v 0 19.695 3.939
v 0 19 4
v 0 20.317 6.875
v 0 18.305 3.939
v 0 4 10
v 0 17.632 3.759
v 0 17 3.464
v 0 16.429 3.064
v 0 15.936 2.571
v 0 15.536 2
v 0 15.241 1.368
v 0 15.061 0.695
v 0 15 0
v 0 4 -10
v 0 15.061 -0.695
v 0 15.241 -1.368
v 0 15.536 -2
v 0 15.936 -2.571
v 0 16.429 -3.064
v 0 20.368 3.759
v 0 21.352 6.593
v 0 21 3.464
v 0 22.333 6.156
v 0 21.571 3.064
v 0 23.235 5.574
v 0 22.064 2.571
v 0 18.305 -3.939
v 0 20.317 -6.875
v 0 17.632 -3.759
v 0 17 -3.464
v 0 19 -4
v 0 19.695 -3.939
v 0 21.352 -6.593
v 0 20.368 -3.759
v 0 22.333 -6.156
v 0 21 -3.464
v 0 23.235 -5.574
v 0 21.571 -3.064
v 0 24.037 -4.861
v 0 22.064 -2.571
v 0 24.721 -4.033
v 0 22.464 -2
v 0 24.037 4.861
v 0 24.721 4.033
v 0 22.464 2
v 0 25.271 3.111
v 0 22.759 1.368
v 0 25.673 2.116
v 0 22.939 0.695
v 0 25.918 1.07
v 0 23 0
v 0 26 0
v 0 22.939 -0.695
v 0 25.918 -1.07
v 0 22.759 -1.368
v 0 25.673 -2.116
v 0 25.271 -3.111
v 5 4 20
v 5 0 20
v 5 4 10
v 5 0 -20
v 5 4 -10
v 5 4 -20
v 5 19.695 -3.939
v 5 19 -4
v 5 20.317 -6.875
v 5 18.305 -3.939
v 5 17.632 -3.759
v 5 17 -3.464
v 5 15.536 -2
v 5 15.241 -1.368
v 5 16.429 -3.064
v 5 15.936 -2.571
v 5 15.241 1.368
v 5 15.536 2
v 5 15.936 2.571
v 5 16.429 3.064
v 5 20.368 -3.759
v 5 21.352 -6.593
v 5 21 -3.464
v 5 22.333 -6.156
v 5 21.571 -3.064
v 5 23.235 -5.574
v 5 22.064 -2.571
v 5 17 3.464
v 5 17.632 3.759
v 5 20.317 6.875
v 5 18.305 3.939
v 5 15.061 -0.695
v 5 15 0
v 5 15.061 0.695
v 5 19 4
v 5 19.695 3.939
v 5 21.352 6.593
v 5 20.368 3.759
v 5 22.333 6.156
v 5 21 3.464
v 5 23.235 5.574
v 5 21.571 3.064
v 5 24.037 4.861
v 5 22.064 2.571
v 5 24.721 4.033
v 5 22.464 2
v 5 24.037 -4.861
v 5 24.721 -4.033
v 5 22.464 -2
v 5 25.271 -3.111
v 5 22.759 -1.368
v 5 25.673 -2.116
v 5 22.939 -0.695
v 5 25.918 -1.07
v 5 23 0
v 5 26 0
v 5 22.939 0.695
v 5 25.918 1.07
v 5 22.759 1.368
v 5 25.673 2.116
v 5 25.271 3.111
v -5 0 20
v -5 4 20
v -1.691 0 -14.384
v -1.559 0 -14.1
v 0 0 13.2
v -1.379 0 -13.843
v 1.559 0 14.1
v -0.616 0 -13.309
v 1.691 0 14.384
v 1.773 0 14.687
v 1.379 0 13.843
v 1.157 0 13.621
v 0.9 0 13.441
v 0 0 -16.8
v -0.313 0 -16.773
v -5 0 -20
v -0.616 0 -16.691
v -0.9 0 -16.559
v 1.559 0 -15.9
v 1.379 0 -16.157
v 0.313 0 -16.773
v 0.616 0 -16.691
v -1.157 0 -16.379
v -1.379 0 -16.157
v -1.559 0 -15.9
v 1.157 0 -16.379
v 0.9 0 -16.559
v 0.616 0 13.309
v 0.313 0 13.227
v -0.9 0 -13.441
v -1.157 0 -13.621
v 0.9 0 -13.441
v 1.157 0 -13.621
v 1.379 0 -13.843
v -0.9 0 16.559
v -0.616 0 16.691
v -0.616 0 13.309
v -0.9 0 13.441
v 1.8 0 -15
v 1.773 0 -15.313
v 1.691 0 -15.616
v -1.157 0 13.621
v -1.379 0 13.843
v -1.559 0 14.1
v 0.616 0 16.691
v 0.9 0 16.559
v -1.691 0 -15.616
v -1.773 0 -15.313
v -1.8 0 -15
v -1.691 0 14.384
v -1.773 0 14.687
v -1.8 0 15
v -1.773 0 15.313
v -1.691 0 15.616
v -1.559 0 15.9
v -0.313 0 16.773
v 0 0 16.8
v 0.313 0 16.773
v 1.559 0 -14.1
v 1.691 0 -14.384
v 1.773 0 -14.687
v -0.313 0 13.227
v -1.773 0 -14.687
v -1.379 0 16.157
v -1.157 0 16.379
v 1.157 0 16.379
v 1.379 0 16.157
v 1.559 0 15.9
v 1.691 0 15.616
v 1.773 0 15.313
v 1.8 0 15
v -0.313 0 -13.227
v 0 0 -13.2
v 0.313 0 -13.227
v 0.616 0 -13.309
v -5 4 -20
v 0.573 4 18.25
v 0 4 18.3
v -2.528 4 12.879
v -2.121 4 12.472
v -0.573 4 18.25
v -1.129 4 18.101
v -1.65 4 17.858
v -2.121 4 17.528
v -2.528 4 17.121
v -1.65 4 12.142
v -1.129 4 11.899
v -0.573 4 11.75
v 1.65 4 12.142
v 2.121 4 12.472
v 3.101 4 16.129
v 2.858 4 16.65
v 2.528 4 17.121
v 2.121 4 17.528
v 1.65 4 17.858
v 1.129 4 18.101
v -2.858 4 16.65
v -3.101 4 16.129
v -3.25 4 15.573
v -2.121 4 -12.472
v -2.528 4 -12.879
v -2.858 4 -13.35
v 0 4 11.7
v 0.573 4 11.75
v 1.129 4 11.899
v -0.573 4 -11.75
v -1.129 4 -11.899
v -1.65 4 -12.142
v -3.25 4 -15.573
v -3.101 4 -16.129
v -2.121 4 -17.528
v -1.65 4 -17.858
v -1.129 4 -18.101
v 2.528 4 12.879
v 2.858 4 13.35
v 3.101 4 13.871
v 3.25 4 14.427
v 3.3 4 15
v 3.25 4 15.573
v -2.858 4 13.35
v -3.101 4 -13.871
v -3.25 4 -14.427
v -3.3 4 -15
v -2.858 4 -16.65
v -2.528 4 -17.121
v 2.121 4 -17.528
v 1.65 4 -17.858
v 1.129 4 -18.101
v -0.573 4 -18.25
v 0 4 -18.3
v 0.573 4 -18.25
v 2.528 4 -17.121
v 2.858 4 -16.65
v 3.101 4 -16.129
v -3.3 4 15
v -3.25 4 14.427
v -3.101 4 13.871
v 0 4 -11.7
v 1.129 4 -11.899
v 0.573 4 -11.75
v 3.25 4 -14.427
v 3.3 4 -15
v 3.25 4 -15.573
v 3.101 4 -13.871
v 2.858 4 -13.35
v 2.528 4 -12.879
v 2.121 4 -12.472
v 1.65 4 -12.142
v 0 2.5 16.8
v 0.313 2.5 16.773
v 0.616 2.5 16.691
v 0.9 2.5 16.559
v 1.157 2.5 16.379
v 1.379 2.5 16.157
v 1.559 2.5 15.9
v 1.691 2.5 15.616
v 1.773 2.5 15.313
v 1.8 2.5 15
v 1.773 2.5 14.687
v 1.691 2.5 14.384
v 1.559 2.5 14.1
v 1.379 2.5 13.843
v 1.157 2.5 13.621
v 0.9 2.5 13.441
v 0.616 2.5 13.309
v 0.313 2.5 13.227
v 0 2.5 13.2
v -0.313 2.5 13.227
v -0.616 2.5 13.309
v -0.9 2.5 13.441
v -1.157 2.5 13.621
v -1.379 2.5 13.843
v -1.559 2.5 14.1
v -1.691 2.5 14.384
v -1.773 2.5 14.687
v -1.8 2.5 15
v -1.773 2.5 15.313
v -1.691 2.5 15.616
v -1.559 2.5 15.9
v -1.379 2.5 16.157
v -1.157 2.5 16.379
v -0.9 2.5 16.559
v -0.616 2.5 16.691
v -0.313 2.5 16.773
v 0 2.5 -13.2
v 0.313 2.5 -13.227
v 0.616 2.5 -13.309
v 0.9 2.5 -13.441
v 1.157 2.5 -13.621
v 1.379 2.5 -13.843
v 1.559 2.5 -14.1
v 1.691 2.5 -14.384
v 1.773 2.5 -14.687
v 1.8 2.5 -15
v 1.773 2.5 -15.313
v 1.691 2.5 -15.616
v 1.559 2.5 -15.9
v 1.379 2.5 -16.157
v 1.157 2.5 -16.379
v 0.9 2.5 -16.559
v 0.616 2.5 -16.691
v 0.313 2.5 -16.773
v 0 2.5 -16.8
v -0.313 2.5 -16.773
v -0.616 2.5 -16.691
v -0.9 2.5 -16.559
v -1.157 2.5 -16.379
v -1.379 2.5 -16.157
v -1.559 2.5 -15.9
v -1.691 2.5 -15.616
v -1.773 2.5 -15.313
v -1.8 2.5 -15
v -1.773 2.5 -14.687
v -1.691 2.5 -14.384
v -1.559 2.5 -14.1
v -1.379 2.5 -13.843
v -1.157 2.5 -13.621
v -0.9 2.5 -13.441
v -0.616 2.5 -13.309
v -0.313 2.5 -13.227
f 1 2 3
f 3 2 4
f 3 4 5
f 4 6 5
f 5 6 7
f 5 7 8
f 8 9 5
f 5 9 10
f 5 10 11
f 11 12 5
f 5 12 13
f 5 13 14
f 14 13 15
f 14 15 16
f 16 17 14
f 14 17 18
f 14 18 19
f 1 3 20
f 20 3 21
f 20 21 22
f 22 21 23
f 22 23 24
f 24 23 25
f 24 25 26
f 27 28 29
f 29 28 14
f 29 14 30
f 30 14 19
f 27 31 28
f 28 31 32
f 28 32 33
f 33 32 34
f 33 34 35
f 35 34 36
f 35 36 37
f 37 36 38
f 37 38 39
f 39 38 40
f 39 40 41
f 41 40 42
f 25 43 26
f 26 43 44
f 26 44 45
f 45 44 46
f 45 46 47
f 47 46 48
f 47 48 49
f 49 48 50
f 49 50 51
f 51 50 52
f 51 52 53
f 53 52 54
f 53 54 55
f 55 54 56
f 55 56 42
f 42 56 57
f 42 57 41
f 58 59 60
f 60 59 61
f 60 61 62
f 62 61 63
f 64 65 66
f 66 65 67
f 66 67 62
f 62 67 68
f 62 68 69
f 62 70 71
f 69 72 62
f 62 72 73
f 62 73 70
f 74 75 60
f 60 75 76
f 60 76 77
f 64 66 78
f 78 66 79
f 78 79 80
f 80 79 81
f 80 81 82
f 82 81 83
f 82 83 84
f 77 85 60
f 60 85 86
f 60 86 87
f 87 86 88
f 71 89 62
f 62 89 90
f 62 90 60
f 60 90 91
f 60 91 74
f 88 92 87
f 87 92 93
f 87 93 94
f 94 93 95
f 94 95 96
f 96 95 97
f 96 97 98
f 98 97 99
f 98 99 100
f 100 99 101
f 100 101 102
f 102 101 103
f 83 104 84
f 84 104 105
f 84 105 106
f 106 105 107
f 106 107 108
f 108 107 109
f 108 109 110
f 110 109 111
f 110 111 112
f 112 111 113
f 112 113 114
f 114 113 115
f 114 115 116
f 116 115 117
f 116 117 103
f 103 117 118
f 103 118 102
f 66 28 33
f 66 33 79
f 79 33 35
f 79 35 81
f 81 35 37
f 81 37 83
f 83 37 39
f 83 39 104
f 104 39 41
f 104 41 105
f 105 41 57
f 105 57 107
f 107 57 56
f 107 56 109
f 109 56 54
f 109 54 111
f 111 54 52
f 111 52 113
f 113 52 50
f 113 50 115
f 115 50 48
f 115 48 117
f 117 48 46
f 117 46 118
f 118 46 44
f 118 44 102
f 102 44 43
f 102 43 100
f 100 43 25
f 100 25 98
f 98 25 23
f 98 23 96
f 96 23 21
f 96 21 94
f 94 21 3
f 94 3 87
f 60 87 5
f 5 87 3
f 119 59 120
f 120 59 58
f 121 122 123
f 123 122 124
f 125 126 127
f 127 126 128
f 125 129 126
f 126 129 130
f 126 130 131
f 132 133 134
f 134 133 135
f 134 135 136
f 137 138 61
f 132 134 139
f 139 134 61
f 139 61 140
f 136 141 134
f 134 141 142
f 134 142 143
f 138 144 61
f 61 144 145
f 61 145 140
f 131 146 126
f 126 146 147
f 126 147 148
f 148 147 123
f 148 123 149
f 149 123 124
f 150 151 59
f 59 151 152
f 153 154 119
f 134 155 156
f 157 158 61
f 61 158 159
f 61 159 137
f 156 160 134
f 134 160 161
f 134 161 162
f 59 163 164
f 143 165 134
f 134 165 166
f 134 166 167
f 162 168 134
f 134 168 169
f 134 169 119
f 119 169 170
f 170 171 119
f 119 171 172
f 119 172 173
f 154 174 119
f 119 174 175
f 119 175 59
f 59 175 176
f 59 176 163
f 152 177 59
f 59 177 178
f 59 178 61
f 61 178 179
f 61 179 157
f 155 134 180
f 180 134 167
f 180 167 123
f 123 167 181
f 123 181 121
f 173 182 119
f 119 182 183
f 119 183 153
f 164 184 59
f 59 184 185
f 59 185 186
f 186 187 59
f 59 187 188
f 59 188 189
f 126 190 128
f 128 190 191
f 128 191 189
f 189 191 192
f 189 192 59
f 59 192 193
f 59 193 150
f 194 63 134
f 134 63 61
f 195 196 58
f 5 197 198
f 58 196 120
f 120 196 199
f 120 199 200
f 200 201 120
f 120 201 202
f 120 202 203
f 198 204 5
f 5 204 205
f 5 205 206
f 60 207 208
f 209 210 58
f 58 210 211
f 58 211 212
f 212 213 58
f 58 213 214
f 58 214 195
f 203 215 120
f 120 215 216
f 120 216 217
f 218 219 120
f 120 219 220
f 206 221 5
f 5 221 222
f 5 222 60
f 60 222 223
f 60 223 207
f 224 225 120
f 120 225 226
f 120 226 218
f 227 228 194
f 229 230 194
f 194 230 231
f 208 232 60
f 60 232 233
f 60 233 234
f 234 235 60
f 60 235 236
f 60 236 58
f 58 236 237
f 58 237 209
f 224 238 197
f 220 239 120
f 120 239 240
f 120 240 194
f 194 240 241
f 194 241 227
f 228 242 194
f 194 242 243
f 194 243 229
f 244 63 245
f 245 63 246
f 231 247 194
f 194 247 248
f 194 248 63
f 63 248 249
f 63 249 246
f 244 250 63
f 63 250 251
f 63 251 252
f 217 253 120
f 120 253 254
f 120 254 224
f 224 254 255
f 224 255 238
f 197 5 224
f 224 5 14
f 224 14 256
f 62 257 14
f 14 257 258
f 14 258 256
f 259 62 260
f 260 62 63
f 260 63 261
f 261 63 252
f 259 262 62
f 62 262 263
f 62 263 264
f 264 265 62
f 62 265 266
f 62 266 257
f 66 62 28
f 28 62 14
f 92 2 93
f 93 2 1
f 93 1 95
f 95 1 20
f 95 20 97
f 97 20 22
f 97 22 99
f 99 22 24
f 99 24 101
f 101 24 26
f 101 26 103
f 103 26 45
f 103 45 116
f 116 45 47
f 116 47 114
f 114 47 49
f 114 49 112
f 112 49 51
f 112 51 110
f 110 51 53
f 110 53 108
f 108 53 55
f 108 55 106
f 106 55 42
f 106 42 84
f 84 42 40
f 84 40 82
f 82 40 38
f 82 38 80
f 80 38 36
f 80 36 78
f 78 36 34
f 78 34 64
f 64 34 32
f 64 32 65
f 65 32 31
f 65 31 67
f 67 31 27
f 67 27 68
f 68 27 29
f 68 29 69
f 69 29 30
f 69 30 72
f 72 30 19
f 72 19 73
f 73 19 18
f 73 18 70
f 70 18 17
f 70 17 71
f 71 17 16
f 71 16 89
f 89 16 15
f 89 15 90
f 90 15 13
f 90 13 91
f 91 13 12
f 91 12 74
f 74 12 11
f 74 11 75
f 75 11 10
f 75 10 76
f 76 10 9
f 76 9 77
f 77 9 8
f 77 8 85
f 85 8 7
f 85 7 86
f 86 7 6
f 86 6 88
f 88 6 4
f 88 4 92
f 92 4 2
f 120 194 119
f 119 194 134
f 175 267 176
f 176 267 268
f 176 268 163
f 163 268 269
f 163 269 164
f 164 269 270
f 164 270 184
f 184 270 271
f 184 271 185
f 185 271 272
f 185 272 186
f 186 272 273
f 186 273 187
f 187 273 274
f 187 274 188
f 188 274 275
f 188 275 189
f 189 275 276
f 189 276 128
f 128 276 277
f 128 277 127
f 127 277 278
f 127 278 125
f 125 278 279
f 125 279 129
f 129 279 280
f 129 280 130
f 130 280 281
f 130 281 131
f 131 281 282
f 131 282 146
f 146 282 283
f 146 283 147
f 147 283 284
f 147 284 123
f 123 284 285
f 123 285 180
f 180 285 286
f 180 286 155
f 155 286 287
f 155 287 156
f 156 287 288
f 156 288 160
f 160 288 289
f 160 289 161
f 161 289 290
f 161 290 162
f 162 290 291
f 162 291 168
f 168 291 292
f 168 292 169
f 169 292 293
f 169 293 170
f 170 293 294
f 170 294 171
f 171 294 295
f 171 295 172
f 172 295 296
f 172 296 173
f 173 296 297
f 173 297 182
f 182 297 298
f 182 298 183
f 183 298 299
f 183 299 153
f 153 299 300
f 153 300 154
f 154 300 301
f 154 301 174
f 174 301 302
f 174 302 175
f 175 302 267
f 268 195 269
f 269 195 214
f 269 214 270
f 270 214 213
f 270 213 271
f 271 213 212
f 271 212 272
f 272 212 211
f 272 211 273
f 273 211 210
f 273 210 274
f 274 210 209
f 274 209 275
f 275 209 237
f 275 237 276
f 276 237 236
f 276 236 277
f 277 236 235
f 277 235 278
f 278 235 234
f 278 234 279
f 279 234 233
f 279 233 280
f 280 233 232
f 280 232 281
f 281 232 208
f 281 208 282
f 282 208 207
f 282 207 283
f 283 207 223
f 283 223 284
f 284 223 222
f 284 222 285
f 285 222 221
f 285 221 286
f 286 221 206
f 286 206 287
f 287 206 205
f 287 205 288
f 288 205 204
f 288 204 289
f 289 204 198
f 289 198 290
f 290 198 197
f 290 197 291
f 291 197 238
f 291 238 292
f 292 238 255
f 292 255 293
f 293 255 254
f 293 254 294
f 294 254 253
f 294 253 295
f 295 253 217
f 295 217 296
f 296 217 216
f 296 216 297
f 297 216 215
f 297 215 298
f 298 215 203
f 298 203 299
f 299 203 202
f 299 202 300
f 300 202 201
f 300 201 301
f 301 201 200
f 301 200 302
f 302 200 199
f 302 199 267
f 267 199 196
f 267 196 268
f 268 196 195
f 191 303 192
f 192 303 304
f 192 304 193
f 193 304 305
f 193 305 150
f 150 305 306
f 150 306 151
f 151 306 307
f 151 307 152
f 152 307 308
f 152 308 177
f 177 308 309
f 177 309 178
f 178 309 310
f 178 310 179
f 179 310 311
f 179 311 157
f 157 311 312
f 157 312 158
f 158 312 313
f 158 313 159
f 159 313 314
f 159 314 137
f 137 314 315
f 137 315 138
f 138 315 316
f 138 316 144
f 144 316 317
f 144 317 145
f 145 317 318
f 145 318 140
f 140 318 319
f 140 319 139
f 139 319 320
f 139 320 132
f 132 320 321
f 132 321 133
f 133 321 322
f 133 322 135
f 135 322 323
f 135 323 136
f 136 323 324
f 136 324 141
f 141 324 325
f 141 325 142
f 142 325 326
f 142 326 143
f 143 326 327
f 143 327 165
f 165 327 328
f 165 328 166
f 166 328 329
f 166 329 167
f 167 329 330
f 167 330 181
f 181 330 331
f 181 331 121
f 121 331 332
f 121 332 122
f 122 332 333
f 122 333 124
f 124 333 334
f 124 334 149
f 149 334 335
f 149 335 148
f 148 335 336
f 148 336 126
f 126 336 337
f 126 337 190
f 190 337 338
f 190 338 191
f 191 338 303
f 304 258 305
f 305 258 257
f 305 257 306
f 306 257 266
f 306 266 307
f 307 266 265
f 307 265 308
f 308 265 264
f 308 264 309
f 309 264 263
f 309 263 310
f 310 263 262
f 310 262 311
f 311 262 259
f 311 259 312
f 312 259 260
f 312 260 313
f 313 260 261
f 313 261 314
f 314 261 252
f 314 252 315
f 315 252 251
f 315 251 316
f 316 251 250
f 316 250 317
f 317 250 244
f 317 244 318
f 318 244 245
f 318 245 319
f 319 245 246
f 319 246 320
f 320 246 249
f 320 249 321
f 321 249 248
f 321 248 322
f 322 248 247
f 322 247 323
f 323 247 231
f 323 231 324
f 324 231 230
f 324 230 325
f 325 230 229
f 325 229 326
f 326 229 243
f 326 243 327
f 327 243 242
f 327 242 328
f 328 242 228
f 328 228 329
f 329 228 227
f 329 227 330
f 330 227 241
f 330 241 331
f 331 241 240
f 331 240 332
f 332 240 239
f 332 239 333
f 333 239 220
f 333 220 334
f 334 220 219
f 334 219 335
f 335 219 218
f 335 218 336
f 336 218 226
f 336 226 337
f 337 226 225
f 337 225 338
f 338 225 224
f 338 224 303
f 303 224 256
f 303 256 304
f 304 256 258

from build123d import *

# Parameters (mm, degrees)
SKETCH_1_R                = 4
EXTRUDE_1_DEPTH           = 5
SKETCH_2_W                = 5
SKETCH_2_H                = 40
EXTRUDE_2_DEPTH           = 4
HOLE_WIZARD_1_D           = 3.6
HOLE_WIZARD_1_CSINK_D     = 6.6
HOLE_WIZARD_1_CSINK_ANGLE = 90


with BuildPart() as part:
    # 草图1 → 凸台-拉伸1 (new body)
    with BuildSketch(Plane(origin=(0, 0, 0), x_dir=(0, 0, -1), z_dir=(1, 0, 0))):
        with BuildLine():
            Line((-6.875049265, 20.31669951), (-10, 4))
            Line((-10, 4), (-20, 4))
            Line((-20, 4), (-20, 0))
            Line((-20, 0), (20, 0))
            Line((20, 0), (20, 4))
            Line((20, 4), (10, 4))
            Line((10, 4), (6.875049265, 20.31669951))
            ThreePointArc((6.875049265, 20.31669951), (0, 26), (-6.875049265, 20.31669951))
        make_face()
        with Locations((0, 19)):
            Circle(SKETCH_1_R, mode=Mode.SUBTRACT)
    extrude(amount=EXTRUDE_1_DEPTH)

    # 草图2 → 凸台-拉伸2 (add)
    with BuildSketch(Plane(origin=(0, 4, 0), x_dir=(1, 0, 0), z_dir=(0, 1, 0))):
        with Locations((-2.5, 0)):
            Rectangle(SKETCH_2_W, SKETCH_2_H)
    extrude(amount=-EXTRUDE_2_DEPTH)

    # 打孔尺寸(%根据十字)槽半沉头木螺钉的类型1 (through all)
    with Locations(Plane(origin=(0, 4, 0), x_dir=(1, 0, 0), z_dir=(0, 1, 0))):
        with Locations((0, 15), (0, -15)):
            CounterSinkHole(HOLE_WIZARD_1_D / 2, HOLE_WIZARD_1_CSINK_D / 2, counter_sink_angle=HOLE_WIZARD_1_CSINK_ANGLE)


solid = part.part
